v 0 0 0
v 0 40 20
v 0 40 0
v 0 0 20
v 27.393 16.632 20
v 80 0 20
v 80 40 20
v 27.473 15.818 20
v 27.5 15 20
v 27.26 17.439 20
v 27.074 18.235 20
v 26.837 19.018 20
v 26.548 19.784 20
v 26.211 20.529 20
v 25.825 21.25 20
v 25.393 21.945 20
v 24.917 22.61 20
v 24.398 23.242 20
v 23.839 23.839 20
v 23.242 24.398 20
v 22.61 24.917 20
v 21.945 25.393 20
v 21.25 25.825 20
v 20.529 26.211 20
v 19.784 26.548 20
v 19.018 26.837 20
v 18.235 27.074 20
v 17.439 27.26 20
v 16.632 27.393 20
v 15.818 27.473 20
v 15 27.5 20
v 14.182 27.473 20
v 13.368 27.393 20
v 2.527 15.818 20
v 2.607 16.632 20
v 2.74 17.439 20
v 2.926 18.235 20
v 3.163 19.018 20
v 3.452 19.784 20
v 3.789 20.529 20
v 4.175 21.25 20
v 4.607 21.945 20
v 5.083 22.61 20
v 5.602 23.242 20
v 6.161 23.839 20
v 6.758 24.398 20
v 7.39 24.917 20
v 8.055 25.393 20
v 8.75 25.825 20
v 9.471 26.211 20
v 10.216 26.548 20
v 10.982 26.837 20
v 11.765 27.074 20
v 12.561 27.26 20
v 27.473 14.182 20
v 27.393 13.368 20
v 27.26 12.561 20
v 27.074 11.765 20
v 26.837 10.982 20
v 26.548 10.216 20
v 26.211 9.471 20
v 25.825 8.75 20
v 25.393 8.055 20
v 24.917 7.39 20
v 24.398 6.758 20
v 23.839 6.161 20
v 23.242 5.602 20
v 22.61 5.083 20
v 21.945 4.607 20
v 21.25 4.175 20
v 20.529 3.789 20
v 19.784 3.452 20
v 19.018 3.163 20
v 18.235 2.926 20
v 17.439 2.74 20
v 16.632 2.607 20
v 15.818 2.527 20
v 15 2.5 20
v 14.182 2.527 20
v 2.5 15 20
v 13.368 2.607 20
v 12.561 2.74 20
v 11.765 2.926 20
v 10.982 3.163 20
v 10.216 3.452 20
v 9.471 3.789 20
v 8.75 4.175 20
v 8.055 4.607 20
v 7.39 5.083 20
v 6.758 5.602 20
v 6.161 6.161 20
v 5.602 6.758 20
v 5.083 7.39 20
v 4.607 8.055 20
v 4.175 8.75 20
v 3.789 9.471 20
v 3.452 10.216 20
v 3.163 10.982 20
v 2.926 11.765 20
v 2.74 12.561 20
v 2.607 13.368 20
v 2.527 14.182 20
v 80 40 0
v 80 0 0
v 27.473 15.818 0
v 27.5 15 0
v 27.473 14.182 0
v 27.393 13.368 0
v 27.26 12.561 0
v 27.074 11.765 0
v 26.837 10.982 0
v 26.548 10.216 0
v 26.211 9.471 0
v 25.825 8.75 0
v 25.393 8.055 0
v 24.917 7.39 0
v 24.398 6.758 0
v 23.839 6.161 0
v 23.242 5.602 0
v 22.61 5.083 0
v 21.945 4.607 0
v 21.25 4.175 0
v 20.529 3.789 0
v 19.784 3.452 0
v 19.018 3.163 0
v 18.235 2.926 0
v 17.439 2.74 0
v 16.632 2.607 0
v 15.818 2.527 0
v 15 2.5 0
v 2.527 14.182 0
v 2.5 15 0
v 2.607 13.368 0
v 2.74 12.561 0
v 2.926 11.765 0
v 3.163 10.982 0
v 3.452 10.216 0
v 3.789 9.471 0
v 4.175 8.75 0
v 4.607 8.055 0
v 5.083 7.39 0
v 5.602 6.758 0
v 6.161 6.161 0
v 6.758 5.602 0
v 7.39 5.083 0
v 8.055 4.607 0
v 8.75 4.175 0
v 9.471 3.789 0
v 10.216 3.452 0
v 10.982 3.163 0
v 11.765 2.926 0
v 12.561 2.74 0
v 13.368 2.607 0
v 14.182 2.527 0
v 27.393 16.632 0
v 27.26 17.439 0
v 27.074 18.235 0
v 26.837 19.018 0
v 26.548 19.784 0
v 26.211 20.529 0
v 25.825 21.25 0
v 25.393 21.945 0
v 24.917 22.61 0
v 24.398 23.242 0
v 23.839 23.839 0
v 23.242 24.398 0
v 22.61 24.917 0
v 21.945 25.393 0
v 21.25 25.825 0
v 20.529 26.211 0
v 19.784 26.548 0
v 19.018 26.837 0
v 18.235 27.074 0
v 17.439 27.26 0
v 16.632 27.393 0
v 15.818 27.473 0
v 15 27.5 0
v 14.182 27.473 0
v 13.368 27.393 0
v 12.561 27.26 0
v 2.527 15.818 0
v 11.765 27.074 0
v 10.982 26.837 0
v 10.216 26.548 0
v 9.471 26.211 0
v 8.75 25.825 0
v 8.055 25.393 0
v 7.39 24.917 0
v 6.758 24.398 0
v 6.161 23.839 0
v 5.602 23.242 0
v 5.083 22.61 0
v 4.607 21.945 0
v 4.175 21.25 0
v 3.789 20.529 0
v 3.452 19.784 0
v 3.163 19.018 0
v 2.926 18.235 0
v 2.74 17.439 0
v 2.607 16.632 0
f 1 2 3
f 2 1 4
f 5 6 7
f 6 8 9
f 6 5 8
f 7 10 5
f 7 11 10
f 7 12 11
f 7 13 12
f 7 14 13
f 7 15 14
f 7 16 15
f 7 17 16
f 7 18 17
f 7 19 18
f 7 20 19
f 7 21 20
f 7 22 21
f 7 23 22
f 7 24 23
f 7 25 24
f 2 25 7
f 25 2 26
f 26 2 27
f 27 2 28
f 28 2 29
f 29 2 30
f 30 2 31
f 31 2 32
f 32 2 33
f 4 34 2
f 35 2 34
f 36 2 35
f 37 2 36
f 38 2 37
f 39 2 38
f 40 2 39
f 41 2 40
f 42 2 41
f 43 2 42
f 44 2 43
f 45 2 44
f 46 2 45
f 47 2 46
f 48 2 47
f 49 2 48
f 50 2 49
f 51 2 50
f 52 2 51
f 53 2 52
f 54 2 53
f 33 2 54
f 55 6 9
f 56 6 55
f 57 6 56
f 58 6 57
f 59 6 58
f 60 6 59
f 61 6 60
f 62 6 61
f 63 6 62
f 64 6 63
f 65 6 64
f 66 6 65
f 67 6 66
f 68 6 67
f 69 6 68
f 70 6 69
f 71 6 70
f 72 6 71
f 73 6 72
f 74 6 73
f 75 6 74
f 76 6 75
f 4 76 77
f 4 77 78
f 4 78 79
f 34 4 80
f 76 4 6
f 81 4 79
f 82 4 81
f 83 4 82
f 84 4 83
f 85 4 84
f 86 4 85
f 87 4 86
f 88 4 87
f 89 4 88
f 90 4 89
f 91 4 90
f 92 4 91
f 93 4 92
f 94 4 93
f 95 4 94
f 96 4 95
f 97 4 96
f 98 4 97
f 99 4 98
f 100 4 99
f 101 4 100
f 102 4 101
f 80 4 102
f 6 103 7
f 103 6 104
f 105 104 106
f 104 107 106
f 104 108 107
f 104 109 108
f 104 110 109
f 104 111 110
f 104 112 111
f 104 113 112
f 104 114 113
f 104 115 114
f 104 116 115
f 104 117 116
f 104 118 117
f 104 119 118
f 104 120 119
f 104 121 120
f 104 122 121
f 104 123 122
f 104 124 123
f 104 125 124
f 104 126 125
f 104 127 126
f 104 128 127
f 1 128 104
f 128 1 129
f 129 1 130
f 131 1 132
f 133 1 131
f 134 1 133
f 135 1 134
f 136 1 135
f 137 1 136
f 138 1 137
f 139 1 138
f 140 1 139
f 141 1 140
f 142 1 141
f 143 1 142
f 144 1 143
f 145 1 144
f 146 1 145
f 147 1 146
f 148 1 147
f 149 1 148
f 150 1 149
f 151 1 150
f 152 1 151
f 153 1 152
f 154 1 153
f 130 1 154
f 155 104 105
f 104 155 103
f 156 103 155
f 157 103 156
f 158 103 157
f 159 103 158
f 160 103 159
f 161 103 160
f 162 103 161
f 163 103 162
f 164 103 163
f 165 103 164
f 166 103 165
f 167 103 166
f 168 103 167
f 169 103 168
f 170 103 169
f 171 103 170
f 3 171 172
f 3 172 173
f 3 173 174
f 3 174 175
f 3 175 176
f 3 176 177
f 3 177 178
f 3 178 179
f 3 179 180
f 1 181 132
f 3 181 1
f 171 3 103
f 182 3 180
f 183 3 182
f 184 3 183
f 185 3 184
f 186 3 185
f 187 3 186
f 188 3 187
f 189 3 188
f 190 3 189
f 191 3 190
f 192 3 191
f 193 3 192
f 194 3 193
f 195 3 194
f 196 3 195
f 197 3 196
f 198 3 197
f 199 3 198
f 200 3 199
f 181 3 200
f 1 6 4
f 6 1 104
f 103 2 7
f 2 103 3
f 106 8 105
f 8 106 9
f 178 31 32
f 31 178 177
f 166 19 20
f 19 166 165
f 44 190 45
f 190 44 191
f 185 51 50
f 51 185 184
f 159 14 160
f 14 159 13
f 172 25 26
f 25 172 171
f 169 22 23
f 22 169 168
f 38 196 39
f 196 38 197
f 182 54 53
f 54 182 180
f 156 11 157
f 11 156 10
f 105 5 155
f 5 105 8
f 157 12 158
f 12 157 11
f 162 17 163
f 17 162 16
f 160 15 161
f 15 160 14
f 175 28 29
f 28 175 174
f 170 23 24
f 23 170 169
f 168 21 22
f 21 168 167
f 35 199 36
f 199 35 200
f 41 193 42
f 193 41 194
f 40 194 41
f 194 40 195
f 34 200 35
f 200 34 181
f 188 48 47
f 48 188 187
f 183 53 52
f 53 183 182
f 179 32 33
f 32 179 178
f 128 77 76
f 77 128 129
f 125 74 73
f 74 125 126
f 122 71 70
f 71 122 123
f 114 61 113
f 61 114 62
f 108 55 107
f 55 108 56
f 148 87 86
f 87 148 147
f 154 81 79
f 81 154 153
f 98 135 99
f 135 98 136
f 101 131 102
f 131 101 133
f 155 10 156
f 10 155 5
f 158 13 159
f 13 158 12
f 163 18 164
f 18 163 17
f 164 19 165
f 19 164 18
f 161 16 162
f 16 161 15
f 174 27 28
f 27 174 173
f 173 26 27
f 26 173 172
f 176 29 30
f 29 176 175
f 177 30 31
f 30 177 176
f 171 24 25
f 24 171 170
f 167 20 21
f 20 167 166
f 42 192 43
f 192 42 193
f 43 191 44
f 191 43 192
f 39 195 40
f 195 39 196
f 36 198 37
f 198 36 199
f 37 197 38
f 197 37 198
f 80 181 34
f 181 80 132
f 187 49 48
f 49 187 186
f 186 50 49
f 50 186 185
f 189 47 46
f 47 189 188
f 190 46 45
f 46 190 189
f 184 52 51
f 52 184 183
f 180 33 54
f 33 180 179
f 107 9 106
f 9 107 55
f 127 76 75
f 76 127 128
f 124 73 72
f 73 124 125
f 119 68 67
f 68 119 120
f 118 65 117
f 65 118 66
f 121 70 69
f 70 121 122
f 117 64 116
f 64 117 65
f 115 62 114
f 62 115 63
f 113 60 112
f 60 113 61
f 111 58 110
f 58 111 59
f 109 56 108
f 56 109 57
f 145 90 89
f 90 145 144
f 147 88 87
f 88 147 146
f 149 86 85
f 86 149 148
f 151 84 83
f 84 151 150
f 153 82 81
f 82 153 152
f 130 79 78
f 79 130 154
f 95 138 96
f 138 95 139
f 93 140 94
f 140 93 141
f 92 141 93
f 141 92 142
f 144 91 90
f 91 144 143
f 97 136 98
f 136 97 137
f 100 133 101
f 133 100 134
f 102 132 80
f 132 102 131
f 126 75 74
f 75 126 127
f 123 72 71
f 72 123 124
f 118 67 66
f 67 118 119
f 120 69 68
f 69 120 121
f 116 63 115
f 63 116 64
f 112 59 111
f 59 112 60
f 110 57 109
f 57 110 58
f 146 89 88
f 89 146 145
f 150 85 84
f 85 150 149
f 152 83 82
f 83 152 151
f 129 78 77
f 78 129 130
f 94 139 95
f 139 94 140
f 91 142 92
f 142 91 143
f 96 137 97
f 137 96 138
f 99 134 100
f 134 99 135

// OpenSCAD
// Faz 3 test modeli — parametrik, tum olculer mm cinsinden.
// KURAL: kullanicinin verdigi olcu degistirilmedi; delik merkezi sorularak tamamlandi.

// PARAM: olculer (kaynak her satirda belirtilir)
width = 80;             // mm (kullanici: govde X)
depth = 40;             // mm (kullanici: govde Y)
height = 20;            // mm (kullanici: govde Z)
wall_thickness = 2;     // mm (kullanici: en az kenar boslugu sarti)
hole_diameter = 25;     // mm (kullanici: tam gecisli delik capi, Z ekseni)
hole_x = 15;            // mm (sorularak: delik merkezi X, referans koseden)
hole_y = 15;            // mm (sorularak: delik merkezi Y, referans koseden)

$fn = 96;

difference() {
    // Govde: tablaya oturan en genis yuz altta (Z=0)
    cube([width, depth, height]);
    // Tam gecisli delik: Z ekseni boyunca, govdeyi iki yonden de tasarak keser
    translate([hole_x, hole_y, -1])
        cylinder(d = hole_diameter, h = height + 2);
}
